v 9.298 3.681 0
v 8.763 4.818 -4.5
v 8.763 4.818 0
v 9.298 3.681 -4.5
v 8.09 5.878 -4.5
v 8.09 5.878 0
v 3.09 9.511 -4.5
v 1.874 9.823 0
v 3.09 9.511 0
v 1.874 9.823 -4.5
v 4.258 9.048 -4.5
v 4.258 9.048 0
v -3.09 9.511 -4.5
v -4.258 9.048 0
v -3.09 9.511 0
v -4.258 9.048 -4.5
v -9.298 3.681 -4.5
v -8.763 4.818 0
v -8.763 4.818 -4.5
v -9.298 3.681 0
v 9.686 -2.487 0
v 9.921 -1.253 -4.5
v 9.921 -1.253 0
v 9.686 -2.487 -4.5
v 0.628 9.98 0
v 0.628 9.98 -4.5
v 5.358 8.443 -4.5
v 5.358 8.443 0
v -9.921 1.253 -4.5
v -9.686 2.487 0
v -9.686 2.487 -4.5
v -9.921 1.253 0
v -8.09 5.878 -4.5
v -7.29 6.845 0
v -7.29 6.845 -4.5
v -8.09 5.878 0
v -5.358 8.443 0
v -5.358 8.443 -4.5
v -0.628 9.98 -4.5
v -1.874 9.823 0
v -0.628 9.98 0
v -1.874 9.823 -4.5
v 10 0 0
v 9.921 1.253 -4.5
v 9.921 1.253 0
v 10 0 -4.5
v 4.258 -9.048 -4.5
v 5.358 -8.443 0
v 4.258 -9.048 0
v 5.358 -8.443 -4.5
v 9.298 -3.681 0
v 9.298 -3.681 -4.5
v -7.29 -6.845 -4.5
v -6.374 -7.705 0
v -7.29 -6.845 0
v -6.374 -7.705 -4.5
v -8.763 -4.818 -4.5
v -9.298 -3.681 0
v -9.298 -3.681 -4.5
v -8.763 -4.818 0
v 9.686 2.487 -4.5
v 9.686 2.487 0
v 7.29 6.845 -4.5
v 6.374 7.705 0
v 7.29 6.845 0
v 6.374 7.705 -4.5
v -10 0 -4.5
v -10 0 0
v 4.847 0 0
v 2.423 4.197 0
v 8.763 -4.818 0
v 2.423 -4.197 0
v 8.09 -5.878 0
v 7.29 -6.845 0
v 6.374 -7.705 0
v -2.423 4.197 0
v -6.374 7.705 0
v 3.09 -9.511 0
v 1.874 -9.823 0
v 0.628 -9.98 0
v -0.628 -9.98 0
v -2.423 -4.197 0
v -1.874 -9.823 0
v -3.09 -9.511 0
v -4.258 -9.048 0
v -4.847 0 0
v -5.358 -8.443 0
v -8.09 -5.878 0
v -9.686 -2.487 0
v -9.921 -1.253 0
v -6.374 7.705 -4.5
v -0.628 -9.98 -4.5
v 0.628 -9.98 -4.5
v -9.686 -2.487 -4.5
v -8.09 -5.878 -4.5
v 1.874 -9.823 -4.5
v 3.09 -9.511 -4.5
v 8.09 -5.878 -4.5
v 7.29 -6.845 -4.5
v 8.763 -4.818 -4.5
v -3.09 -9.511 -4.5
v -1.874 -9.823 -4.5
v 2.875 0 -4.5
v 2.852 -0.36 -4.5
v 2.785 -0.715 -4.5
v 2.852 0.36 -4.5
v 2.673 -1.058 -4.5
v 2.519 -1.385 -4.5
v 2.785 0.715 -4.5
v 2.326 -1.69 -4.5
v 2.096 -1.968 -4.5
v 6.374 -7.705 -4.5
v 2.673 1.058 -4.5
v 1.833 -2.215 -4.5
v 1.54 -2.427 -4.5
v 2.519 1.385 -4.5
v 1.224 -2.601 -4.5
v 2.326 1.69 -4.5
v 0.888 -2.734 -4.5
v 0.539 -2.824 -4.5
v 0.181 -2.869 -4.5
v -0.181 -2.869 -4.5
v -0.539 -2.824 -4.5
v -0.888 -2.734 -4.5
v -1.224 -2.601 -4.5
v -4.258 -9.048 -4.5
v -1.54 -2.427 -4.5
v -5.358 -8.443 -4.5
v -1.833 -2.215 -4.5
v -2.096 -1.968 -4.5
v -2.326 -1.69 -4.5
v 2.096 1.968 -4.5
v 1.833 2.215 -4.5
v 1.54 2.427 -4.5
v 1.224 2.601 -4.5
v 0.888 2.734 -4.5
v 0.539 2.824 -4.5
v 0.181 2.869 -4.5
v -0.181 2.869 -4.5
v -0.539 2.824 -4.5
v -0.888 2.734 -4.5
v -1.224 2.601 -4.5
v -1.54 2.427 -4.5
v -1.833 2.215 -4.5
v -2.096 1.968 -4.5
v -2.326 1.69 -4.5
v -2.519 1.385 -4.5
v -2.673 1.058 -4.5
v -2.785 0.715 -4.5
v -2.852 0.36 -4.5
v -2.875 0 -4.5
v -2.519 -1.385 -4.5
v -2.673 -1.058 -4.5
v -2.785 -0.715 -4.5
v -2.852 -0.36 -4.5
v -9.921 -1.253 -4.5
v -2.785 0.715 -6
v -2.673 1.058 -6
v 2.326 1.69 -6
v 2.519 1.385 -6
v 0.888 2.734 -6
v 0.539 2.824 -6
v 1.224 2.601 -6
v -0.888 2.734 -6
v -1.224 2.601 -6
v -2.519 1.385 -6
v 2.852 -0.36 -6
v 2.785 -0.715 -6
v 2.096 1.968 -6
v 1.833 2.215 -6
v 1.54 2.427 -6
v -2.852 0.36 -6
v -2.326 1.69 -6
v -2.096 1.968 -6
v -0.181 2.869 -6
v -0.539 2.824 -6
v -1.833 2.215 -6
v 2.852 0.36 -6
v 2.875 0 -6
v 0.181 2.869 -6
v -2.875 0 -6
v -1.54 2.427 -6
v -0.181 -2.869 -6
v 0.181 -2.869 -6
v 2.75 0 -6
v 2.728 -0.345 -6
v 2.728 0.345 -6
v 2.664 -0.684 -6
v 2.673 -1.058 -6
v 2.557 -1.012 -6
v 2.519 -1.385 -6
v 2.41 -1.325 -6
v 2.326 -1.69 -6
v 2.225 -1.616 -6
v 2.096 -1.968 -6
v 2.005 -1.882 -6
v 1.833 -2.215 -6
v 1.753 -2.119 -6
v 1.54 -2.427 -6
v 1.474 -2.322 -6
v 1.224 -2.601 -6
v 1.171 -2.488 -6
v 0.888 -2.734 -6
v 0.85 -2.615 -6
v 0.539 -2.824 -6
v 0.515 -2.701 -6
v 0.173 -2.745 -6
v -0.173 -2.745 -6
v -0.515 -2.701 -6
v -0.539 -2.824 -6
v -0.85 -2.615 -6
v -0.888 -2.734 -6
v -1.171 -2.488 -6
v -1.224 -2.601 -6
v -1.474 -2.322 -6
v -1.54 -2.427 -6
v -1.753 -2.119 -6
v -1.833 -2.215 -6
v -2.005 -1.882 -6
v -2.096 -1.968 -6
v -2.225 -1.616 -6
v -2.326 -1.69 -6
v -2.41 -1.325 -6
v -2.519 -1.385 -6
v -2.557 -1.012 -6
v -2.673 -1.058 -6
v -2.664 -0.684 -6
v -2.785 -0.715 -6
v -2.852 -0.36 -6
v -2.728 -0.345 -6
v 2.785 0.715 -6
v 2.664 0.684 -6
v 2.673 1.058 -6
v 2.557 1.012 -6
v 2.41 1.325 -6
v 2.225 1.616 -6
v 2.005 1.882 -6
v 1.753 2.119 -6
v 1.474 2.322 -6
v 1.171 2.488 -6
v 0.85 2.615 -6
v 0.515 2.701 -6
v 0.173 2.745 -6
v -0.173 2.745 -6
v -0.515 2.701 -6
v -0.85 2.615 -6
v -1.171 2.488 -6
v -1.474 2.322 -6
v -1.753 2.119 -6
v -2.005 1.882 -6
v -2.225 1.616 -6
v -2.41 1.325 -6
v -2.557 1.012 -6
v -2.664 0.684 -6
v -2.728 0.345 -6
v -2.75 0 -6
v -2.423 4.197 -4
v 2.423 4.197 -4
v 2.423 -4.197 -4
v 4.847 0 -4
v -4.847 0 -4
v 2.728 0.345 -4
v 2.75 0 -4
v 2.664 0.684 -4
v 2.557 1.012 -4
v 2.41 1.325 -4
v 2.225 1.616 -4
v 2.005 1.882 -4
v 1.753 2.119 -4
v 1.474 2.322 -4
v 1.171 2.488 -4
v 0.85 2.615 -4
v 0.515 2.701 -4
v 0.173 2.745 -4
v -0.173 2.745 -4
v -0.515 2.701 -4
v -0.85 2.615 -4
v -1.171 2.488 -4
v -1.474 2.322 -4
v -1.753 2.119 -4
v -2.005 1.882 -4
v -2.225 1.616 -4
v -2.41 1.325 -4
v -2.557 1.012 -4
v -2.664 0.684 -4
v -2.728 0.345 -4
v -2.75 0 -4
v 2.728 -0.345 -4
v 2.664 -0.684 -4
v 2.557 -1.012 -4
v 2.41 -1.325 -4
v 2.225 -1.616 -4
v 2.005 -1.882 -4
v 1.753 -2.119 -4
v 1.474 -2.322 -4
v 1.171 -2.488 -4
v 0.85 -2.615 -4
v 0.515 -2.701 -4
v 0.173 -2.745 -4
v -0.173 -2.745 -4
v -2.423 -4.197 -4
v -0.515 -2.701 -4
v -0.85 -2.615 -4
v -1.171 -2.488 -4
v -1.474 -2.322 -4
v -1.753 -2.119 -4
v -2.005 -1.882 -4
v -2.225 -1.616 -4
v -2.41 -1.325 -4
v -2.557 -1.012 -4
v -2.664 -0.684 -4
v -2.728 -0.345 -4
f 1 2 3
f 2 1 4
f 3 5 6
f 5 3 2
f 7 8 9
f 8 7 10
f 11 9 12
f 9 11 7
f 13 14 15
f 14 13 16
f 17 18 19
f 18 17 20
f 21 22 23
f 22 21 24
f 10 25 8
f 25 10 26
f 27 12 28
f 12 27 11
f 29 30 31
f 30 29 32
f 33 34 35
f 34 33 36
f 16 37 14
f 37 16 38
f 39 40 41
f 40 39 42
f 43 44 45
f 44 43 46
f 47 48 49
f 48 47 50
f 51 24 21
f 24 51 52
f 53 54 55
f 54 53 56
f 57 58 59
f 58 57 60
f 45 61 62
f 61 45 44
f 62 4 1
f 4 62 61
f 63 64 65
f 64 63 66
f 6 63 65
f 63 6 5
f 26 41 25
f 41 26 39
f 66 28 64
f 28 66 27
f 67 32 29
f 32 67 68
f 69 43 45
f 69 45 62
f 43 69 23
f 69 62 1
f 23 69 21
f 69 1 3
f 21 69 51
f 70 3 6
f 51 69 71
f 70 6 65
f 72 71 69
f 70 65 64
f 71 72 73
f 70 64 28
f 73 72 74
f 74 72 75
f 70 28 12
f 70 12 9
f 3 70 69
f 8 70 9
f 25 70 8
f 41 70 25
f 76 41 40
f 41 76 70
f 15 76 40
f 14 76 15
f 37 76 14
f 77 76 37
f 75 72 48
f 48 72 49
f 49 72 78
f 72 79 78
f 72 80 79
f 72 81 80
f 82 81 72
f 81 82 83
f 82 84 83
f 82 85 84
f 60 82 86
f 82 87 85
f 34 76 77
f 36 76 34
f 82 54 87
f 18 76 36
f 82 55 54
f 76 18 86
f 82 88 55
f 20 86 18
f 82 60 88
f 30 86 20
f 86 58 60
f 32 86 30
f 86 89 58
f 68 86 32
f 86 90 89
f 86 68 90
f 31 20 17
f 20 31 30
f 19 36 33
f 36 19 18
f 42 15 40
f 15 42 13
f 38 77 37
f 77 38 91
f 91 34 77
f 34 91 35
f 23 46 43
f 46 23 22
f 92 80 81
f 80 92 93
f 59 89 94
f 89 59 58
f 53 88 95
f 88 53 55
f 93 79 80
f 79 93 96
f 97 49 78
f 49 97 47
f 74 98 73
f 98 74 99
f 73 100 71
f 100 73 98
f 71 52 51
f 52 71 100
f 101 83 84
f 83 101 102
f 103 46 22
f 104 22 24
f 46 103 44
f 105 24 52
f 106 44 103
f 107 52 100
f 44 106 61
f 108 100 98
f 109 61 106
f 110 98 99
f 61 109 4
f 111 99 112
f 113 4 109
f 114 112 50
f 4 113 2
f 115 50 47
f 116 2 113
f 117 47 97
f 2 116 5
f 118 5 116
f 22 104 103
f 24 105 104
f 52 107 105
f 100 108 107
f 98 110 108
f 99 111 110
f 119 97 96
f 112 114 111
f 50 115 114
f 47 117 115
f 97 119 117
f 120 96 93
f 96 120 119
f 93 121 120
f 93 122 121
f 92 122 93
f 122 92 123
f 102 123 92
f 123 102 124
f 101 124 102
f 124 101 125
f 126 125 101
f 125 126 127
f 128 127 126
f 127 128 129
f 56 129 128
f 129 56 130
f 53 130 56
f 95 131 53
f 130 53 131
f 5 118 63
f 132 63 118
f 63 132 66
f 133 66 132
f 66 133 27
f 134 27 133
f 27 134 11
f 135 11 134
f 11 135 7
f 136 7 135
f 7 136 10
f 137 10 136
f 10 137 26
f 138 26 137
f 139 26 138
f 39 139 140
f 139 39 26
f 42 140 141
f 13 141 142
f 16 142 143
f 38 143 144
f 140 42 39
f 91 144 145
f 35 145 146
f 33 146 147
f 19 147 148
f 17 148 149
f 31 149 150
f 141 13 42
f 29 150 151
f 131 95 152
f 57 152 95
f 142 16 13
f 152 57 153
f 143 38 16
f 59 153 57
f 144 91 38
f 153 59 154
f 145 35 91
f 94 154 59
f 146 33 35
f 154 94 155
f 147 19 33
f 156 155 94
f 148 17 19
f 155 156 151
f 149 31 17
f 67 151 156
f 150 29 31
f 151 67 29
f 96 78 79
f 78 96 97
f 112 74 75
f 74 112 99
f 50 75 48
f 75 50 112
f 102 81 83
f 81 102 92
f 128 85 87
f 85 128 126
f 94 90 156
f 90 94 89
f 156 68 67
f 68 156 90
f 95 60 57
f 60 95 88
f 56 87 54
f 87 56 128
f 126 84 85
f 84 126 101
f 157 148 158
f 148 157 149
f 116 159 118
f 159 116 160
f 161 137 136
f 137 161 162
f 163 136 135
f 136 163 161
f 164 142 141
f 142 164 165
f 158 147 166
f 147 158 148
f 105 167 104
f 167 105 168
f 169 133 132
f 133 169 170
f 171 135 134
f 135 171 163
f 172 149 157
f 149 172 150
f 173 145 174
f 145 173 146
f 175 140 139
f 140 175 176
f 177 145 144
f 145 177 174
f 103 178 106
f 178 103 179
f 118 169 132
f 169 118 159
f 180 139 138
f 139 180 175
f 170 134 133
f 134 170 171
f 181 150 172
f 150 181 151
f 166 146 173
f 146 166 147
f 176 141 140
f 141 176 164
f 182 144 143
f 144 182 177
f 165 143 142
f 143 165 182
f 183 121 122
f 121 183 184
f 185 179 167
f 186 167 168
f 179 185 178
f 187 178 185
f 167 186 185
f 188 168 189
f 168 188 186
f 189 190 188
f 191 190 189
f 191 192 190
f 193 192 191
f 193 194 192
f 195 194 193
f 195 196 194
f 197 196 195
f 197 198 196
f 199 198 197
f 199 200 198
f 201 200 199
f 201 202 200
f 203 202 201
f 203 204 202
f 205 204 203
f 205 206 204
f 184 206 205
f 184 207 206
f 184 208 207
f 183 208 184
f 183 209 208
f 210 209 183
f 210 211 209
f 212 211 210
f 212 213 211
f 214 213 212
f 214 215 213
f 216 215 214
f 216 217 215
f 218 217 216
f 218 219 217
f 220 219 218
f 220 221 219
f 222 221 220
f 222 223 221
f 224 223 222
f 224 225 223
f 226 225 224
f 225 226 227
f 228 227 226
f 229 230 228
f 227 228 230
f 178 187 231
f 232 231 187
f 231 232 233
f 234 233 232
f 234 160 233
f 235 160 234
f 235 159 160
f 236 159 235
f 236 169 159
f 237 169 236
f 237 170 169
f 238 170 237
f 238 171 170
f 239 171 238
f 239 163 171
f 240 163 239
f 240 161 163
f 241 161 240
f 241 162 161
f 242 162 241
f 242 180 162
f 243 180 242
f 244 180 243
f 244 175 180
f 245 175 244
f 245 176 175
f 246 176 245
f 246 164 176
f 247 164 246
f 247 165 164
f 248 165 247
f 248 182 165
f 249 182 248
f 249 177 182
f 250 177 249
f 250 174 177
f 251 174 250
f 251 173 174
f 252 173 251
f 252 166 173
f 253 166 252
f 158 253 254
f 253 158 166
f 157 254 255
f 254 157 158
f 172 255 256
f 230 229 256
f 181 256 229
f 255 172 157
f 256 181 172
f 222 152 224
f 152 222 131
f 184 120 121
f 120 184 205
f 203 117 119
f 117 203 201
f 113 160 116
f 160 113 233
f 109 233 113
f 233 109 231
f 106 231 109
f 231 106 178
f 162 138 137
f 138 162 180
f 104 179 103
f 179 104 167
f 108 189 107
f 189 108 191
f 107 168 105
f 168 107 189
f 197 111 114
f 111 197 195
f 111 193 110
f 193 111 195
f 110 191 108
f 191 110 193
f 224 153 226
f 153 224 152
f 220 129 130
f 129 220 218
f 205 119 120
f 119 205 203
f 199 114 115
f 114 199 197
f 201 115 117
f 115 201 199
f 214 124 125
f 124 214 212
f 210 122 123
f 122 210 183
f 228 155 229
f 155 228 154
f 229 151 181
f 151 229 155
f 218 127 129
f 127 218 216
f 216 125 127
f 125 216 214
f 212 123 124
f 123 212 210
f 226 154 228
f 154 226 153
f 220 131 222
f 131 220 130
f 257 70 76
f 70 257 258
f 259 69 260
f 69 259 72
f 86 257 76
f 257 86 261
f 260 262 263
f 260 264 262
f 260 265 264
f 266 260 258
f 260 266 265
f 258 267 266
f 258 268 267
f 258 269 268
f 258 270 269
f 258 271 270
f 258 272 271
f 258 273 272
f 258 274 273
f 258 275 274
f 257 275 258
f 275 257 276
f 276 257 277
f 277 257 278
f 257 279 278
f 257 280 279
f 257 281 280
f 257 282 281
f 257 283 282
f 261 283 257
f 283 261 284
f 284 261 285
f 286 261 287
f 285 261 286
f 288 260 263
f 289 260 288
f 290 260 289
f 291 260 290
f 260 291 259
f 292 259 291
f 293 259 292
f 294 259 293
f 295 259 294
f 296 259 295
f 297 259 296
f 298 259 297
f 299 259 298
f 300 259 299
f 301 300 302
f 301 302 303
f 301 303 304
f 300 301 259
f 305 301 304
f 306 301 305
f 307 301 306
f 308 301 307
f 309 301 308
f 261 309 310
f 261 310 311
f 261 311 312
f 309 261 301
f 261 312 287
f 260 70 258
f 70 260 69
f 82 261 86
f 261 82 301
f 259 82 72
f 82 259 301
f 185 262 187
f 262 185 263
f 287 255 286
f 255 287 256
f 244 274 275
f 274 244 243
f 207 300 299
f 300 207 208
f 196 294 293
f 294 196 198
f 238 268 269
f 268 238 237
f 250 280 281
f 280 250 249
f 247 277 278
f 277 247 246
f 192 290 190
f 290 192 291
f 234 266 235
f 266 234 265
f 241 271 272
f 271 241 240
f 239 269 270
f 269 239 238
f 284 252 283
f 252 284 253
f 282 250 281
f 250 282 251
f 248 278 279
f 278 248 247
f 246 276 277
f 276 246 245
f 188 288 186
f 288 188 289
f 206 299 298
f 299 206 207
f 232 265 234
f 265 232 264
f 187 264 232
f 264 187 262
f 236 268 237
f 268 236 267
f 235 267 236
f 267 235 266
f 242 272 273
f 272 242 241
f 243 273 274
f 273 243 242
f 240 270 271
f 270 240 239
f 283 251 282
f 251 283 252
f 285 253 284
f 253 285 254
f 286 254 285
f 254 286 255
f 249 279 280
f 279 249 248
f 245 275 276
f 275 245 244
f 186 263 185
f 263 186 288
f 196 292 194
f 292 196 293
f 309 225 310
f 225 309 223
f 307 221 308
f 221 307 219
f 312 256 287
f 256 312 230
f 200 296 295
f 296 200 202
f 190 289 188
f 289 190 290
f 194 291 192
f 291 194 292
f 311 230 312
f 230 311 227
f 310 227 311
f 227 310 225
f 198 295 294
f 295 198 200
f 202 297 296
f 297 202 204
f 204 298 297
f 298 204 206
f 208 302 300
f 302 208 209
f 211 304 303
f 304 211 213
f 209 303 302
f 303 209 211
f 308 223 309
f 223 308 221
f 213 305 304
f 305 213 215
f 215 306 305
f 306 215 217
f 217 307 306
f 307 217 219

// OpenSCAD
$fn = 50;


difference() {
	union() {
		translate(v = [0, 0, -4.5000000000]) {
			cylinder(h = 4.5000000000, r = 10.0000000000);
		}
		#translate(v = [0, 0, -6.0000000000]) {
			cylinder(h = 6, r = 2.8750000000);
		}
	}
	union() {
		translate(v = [0, 0, 0]) {
			rotate(a = [0, 0, 0]) {
				difference() {
					union() {
						translate(v = [0, 0, -4]) {
							linear_extrude(height = 4) {
								polygon(points = [[4.8468000000, 0.0000000000], [2.4234000000, 4.1974519271], [-2.4234000000, 4.1974519271], [-4.8468000000, 0.0000000000], [-2.4234000000, -4.1974519271], [2.4234000000, -4.1974519271]]);
							}
						}
					}
					union();
				}
			}
		}
		#translate(v = [0, 0, -100.0000000000]) {
			cylinder(h = 200, r = 2.7500000000);
		}
	}
}
